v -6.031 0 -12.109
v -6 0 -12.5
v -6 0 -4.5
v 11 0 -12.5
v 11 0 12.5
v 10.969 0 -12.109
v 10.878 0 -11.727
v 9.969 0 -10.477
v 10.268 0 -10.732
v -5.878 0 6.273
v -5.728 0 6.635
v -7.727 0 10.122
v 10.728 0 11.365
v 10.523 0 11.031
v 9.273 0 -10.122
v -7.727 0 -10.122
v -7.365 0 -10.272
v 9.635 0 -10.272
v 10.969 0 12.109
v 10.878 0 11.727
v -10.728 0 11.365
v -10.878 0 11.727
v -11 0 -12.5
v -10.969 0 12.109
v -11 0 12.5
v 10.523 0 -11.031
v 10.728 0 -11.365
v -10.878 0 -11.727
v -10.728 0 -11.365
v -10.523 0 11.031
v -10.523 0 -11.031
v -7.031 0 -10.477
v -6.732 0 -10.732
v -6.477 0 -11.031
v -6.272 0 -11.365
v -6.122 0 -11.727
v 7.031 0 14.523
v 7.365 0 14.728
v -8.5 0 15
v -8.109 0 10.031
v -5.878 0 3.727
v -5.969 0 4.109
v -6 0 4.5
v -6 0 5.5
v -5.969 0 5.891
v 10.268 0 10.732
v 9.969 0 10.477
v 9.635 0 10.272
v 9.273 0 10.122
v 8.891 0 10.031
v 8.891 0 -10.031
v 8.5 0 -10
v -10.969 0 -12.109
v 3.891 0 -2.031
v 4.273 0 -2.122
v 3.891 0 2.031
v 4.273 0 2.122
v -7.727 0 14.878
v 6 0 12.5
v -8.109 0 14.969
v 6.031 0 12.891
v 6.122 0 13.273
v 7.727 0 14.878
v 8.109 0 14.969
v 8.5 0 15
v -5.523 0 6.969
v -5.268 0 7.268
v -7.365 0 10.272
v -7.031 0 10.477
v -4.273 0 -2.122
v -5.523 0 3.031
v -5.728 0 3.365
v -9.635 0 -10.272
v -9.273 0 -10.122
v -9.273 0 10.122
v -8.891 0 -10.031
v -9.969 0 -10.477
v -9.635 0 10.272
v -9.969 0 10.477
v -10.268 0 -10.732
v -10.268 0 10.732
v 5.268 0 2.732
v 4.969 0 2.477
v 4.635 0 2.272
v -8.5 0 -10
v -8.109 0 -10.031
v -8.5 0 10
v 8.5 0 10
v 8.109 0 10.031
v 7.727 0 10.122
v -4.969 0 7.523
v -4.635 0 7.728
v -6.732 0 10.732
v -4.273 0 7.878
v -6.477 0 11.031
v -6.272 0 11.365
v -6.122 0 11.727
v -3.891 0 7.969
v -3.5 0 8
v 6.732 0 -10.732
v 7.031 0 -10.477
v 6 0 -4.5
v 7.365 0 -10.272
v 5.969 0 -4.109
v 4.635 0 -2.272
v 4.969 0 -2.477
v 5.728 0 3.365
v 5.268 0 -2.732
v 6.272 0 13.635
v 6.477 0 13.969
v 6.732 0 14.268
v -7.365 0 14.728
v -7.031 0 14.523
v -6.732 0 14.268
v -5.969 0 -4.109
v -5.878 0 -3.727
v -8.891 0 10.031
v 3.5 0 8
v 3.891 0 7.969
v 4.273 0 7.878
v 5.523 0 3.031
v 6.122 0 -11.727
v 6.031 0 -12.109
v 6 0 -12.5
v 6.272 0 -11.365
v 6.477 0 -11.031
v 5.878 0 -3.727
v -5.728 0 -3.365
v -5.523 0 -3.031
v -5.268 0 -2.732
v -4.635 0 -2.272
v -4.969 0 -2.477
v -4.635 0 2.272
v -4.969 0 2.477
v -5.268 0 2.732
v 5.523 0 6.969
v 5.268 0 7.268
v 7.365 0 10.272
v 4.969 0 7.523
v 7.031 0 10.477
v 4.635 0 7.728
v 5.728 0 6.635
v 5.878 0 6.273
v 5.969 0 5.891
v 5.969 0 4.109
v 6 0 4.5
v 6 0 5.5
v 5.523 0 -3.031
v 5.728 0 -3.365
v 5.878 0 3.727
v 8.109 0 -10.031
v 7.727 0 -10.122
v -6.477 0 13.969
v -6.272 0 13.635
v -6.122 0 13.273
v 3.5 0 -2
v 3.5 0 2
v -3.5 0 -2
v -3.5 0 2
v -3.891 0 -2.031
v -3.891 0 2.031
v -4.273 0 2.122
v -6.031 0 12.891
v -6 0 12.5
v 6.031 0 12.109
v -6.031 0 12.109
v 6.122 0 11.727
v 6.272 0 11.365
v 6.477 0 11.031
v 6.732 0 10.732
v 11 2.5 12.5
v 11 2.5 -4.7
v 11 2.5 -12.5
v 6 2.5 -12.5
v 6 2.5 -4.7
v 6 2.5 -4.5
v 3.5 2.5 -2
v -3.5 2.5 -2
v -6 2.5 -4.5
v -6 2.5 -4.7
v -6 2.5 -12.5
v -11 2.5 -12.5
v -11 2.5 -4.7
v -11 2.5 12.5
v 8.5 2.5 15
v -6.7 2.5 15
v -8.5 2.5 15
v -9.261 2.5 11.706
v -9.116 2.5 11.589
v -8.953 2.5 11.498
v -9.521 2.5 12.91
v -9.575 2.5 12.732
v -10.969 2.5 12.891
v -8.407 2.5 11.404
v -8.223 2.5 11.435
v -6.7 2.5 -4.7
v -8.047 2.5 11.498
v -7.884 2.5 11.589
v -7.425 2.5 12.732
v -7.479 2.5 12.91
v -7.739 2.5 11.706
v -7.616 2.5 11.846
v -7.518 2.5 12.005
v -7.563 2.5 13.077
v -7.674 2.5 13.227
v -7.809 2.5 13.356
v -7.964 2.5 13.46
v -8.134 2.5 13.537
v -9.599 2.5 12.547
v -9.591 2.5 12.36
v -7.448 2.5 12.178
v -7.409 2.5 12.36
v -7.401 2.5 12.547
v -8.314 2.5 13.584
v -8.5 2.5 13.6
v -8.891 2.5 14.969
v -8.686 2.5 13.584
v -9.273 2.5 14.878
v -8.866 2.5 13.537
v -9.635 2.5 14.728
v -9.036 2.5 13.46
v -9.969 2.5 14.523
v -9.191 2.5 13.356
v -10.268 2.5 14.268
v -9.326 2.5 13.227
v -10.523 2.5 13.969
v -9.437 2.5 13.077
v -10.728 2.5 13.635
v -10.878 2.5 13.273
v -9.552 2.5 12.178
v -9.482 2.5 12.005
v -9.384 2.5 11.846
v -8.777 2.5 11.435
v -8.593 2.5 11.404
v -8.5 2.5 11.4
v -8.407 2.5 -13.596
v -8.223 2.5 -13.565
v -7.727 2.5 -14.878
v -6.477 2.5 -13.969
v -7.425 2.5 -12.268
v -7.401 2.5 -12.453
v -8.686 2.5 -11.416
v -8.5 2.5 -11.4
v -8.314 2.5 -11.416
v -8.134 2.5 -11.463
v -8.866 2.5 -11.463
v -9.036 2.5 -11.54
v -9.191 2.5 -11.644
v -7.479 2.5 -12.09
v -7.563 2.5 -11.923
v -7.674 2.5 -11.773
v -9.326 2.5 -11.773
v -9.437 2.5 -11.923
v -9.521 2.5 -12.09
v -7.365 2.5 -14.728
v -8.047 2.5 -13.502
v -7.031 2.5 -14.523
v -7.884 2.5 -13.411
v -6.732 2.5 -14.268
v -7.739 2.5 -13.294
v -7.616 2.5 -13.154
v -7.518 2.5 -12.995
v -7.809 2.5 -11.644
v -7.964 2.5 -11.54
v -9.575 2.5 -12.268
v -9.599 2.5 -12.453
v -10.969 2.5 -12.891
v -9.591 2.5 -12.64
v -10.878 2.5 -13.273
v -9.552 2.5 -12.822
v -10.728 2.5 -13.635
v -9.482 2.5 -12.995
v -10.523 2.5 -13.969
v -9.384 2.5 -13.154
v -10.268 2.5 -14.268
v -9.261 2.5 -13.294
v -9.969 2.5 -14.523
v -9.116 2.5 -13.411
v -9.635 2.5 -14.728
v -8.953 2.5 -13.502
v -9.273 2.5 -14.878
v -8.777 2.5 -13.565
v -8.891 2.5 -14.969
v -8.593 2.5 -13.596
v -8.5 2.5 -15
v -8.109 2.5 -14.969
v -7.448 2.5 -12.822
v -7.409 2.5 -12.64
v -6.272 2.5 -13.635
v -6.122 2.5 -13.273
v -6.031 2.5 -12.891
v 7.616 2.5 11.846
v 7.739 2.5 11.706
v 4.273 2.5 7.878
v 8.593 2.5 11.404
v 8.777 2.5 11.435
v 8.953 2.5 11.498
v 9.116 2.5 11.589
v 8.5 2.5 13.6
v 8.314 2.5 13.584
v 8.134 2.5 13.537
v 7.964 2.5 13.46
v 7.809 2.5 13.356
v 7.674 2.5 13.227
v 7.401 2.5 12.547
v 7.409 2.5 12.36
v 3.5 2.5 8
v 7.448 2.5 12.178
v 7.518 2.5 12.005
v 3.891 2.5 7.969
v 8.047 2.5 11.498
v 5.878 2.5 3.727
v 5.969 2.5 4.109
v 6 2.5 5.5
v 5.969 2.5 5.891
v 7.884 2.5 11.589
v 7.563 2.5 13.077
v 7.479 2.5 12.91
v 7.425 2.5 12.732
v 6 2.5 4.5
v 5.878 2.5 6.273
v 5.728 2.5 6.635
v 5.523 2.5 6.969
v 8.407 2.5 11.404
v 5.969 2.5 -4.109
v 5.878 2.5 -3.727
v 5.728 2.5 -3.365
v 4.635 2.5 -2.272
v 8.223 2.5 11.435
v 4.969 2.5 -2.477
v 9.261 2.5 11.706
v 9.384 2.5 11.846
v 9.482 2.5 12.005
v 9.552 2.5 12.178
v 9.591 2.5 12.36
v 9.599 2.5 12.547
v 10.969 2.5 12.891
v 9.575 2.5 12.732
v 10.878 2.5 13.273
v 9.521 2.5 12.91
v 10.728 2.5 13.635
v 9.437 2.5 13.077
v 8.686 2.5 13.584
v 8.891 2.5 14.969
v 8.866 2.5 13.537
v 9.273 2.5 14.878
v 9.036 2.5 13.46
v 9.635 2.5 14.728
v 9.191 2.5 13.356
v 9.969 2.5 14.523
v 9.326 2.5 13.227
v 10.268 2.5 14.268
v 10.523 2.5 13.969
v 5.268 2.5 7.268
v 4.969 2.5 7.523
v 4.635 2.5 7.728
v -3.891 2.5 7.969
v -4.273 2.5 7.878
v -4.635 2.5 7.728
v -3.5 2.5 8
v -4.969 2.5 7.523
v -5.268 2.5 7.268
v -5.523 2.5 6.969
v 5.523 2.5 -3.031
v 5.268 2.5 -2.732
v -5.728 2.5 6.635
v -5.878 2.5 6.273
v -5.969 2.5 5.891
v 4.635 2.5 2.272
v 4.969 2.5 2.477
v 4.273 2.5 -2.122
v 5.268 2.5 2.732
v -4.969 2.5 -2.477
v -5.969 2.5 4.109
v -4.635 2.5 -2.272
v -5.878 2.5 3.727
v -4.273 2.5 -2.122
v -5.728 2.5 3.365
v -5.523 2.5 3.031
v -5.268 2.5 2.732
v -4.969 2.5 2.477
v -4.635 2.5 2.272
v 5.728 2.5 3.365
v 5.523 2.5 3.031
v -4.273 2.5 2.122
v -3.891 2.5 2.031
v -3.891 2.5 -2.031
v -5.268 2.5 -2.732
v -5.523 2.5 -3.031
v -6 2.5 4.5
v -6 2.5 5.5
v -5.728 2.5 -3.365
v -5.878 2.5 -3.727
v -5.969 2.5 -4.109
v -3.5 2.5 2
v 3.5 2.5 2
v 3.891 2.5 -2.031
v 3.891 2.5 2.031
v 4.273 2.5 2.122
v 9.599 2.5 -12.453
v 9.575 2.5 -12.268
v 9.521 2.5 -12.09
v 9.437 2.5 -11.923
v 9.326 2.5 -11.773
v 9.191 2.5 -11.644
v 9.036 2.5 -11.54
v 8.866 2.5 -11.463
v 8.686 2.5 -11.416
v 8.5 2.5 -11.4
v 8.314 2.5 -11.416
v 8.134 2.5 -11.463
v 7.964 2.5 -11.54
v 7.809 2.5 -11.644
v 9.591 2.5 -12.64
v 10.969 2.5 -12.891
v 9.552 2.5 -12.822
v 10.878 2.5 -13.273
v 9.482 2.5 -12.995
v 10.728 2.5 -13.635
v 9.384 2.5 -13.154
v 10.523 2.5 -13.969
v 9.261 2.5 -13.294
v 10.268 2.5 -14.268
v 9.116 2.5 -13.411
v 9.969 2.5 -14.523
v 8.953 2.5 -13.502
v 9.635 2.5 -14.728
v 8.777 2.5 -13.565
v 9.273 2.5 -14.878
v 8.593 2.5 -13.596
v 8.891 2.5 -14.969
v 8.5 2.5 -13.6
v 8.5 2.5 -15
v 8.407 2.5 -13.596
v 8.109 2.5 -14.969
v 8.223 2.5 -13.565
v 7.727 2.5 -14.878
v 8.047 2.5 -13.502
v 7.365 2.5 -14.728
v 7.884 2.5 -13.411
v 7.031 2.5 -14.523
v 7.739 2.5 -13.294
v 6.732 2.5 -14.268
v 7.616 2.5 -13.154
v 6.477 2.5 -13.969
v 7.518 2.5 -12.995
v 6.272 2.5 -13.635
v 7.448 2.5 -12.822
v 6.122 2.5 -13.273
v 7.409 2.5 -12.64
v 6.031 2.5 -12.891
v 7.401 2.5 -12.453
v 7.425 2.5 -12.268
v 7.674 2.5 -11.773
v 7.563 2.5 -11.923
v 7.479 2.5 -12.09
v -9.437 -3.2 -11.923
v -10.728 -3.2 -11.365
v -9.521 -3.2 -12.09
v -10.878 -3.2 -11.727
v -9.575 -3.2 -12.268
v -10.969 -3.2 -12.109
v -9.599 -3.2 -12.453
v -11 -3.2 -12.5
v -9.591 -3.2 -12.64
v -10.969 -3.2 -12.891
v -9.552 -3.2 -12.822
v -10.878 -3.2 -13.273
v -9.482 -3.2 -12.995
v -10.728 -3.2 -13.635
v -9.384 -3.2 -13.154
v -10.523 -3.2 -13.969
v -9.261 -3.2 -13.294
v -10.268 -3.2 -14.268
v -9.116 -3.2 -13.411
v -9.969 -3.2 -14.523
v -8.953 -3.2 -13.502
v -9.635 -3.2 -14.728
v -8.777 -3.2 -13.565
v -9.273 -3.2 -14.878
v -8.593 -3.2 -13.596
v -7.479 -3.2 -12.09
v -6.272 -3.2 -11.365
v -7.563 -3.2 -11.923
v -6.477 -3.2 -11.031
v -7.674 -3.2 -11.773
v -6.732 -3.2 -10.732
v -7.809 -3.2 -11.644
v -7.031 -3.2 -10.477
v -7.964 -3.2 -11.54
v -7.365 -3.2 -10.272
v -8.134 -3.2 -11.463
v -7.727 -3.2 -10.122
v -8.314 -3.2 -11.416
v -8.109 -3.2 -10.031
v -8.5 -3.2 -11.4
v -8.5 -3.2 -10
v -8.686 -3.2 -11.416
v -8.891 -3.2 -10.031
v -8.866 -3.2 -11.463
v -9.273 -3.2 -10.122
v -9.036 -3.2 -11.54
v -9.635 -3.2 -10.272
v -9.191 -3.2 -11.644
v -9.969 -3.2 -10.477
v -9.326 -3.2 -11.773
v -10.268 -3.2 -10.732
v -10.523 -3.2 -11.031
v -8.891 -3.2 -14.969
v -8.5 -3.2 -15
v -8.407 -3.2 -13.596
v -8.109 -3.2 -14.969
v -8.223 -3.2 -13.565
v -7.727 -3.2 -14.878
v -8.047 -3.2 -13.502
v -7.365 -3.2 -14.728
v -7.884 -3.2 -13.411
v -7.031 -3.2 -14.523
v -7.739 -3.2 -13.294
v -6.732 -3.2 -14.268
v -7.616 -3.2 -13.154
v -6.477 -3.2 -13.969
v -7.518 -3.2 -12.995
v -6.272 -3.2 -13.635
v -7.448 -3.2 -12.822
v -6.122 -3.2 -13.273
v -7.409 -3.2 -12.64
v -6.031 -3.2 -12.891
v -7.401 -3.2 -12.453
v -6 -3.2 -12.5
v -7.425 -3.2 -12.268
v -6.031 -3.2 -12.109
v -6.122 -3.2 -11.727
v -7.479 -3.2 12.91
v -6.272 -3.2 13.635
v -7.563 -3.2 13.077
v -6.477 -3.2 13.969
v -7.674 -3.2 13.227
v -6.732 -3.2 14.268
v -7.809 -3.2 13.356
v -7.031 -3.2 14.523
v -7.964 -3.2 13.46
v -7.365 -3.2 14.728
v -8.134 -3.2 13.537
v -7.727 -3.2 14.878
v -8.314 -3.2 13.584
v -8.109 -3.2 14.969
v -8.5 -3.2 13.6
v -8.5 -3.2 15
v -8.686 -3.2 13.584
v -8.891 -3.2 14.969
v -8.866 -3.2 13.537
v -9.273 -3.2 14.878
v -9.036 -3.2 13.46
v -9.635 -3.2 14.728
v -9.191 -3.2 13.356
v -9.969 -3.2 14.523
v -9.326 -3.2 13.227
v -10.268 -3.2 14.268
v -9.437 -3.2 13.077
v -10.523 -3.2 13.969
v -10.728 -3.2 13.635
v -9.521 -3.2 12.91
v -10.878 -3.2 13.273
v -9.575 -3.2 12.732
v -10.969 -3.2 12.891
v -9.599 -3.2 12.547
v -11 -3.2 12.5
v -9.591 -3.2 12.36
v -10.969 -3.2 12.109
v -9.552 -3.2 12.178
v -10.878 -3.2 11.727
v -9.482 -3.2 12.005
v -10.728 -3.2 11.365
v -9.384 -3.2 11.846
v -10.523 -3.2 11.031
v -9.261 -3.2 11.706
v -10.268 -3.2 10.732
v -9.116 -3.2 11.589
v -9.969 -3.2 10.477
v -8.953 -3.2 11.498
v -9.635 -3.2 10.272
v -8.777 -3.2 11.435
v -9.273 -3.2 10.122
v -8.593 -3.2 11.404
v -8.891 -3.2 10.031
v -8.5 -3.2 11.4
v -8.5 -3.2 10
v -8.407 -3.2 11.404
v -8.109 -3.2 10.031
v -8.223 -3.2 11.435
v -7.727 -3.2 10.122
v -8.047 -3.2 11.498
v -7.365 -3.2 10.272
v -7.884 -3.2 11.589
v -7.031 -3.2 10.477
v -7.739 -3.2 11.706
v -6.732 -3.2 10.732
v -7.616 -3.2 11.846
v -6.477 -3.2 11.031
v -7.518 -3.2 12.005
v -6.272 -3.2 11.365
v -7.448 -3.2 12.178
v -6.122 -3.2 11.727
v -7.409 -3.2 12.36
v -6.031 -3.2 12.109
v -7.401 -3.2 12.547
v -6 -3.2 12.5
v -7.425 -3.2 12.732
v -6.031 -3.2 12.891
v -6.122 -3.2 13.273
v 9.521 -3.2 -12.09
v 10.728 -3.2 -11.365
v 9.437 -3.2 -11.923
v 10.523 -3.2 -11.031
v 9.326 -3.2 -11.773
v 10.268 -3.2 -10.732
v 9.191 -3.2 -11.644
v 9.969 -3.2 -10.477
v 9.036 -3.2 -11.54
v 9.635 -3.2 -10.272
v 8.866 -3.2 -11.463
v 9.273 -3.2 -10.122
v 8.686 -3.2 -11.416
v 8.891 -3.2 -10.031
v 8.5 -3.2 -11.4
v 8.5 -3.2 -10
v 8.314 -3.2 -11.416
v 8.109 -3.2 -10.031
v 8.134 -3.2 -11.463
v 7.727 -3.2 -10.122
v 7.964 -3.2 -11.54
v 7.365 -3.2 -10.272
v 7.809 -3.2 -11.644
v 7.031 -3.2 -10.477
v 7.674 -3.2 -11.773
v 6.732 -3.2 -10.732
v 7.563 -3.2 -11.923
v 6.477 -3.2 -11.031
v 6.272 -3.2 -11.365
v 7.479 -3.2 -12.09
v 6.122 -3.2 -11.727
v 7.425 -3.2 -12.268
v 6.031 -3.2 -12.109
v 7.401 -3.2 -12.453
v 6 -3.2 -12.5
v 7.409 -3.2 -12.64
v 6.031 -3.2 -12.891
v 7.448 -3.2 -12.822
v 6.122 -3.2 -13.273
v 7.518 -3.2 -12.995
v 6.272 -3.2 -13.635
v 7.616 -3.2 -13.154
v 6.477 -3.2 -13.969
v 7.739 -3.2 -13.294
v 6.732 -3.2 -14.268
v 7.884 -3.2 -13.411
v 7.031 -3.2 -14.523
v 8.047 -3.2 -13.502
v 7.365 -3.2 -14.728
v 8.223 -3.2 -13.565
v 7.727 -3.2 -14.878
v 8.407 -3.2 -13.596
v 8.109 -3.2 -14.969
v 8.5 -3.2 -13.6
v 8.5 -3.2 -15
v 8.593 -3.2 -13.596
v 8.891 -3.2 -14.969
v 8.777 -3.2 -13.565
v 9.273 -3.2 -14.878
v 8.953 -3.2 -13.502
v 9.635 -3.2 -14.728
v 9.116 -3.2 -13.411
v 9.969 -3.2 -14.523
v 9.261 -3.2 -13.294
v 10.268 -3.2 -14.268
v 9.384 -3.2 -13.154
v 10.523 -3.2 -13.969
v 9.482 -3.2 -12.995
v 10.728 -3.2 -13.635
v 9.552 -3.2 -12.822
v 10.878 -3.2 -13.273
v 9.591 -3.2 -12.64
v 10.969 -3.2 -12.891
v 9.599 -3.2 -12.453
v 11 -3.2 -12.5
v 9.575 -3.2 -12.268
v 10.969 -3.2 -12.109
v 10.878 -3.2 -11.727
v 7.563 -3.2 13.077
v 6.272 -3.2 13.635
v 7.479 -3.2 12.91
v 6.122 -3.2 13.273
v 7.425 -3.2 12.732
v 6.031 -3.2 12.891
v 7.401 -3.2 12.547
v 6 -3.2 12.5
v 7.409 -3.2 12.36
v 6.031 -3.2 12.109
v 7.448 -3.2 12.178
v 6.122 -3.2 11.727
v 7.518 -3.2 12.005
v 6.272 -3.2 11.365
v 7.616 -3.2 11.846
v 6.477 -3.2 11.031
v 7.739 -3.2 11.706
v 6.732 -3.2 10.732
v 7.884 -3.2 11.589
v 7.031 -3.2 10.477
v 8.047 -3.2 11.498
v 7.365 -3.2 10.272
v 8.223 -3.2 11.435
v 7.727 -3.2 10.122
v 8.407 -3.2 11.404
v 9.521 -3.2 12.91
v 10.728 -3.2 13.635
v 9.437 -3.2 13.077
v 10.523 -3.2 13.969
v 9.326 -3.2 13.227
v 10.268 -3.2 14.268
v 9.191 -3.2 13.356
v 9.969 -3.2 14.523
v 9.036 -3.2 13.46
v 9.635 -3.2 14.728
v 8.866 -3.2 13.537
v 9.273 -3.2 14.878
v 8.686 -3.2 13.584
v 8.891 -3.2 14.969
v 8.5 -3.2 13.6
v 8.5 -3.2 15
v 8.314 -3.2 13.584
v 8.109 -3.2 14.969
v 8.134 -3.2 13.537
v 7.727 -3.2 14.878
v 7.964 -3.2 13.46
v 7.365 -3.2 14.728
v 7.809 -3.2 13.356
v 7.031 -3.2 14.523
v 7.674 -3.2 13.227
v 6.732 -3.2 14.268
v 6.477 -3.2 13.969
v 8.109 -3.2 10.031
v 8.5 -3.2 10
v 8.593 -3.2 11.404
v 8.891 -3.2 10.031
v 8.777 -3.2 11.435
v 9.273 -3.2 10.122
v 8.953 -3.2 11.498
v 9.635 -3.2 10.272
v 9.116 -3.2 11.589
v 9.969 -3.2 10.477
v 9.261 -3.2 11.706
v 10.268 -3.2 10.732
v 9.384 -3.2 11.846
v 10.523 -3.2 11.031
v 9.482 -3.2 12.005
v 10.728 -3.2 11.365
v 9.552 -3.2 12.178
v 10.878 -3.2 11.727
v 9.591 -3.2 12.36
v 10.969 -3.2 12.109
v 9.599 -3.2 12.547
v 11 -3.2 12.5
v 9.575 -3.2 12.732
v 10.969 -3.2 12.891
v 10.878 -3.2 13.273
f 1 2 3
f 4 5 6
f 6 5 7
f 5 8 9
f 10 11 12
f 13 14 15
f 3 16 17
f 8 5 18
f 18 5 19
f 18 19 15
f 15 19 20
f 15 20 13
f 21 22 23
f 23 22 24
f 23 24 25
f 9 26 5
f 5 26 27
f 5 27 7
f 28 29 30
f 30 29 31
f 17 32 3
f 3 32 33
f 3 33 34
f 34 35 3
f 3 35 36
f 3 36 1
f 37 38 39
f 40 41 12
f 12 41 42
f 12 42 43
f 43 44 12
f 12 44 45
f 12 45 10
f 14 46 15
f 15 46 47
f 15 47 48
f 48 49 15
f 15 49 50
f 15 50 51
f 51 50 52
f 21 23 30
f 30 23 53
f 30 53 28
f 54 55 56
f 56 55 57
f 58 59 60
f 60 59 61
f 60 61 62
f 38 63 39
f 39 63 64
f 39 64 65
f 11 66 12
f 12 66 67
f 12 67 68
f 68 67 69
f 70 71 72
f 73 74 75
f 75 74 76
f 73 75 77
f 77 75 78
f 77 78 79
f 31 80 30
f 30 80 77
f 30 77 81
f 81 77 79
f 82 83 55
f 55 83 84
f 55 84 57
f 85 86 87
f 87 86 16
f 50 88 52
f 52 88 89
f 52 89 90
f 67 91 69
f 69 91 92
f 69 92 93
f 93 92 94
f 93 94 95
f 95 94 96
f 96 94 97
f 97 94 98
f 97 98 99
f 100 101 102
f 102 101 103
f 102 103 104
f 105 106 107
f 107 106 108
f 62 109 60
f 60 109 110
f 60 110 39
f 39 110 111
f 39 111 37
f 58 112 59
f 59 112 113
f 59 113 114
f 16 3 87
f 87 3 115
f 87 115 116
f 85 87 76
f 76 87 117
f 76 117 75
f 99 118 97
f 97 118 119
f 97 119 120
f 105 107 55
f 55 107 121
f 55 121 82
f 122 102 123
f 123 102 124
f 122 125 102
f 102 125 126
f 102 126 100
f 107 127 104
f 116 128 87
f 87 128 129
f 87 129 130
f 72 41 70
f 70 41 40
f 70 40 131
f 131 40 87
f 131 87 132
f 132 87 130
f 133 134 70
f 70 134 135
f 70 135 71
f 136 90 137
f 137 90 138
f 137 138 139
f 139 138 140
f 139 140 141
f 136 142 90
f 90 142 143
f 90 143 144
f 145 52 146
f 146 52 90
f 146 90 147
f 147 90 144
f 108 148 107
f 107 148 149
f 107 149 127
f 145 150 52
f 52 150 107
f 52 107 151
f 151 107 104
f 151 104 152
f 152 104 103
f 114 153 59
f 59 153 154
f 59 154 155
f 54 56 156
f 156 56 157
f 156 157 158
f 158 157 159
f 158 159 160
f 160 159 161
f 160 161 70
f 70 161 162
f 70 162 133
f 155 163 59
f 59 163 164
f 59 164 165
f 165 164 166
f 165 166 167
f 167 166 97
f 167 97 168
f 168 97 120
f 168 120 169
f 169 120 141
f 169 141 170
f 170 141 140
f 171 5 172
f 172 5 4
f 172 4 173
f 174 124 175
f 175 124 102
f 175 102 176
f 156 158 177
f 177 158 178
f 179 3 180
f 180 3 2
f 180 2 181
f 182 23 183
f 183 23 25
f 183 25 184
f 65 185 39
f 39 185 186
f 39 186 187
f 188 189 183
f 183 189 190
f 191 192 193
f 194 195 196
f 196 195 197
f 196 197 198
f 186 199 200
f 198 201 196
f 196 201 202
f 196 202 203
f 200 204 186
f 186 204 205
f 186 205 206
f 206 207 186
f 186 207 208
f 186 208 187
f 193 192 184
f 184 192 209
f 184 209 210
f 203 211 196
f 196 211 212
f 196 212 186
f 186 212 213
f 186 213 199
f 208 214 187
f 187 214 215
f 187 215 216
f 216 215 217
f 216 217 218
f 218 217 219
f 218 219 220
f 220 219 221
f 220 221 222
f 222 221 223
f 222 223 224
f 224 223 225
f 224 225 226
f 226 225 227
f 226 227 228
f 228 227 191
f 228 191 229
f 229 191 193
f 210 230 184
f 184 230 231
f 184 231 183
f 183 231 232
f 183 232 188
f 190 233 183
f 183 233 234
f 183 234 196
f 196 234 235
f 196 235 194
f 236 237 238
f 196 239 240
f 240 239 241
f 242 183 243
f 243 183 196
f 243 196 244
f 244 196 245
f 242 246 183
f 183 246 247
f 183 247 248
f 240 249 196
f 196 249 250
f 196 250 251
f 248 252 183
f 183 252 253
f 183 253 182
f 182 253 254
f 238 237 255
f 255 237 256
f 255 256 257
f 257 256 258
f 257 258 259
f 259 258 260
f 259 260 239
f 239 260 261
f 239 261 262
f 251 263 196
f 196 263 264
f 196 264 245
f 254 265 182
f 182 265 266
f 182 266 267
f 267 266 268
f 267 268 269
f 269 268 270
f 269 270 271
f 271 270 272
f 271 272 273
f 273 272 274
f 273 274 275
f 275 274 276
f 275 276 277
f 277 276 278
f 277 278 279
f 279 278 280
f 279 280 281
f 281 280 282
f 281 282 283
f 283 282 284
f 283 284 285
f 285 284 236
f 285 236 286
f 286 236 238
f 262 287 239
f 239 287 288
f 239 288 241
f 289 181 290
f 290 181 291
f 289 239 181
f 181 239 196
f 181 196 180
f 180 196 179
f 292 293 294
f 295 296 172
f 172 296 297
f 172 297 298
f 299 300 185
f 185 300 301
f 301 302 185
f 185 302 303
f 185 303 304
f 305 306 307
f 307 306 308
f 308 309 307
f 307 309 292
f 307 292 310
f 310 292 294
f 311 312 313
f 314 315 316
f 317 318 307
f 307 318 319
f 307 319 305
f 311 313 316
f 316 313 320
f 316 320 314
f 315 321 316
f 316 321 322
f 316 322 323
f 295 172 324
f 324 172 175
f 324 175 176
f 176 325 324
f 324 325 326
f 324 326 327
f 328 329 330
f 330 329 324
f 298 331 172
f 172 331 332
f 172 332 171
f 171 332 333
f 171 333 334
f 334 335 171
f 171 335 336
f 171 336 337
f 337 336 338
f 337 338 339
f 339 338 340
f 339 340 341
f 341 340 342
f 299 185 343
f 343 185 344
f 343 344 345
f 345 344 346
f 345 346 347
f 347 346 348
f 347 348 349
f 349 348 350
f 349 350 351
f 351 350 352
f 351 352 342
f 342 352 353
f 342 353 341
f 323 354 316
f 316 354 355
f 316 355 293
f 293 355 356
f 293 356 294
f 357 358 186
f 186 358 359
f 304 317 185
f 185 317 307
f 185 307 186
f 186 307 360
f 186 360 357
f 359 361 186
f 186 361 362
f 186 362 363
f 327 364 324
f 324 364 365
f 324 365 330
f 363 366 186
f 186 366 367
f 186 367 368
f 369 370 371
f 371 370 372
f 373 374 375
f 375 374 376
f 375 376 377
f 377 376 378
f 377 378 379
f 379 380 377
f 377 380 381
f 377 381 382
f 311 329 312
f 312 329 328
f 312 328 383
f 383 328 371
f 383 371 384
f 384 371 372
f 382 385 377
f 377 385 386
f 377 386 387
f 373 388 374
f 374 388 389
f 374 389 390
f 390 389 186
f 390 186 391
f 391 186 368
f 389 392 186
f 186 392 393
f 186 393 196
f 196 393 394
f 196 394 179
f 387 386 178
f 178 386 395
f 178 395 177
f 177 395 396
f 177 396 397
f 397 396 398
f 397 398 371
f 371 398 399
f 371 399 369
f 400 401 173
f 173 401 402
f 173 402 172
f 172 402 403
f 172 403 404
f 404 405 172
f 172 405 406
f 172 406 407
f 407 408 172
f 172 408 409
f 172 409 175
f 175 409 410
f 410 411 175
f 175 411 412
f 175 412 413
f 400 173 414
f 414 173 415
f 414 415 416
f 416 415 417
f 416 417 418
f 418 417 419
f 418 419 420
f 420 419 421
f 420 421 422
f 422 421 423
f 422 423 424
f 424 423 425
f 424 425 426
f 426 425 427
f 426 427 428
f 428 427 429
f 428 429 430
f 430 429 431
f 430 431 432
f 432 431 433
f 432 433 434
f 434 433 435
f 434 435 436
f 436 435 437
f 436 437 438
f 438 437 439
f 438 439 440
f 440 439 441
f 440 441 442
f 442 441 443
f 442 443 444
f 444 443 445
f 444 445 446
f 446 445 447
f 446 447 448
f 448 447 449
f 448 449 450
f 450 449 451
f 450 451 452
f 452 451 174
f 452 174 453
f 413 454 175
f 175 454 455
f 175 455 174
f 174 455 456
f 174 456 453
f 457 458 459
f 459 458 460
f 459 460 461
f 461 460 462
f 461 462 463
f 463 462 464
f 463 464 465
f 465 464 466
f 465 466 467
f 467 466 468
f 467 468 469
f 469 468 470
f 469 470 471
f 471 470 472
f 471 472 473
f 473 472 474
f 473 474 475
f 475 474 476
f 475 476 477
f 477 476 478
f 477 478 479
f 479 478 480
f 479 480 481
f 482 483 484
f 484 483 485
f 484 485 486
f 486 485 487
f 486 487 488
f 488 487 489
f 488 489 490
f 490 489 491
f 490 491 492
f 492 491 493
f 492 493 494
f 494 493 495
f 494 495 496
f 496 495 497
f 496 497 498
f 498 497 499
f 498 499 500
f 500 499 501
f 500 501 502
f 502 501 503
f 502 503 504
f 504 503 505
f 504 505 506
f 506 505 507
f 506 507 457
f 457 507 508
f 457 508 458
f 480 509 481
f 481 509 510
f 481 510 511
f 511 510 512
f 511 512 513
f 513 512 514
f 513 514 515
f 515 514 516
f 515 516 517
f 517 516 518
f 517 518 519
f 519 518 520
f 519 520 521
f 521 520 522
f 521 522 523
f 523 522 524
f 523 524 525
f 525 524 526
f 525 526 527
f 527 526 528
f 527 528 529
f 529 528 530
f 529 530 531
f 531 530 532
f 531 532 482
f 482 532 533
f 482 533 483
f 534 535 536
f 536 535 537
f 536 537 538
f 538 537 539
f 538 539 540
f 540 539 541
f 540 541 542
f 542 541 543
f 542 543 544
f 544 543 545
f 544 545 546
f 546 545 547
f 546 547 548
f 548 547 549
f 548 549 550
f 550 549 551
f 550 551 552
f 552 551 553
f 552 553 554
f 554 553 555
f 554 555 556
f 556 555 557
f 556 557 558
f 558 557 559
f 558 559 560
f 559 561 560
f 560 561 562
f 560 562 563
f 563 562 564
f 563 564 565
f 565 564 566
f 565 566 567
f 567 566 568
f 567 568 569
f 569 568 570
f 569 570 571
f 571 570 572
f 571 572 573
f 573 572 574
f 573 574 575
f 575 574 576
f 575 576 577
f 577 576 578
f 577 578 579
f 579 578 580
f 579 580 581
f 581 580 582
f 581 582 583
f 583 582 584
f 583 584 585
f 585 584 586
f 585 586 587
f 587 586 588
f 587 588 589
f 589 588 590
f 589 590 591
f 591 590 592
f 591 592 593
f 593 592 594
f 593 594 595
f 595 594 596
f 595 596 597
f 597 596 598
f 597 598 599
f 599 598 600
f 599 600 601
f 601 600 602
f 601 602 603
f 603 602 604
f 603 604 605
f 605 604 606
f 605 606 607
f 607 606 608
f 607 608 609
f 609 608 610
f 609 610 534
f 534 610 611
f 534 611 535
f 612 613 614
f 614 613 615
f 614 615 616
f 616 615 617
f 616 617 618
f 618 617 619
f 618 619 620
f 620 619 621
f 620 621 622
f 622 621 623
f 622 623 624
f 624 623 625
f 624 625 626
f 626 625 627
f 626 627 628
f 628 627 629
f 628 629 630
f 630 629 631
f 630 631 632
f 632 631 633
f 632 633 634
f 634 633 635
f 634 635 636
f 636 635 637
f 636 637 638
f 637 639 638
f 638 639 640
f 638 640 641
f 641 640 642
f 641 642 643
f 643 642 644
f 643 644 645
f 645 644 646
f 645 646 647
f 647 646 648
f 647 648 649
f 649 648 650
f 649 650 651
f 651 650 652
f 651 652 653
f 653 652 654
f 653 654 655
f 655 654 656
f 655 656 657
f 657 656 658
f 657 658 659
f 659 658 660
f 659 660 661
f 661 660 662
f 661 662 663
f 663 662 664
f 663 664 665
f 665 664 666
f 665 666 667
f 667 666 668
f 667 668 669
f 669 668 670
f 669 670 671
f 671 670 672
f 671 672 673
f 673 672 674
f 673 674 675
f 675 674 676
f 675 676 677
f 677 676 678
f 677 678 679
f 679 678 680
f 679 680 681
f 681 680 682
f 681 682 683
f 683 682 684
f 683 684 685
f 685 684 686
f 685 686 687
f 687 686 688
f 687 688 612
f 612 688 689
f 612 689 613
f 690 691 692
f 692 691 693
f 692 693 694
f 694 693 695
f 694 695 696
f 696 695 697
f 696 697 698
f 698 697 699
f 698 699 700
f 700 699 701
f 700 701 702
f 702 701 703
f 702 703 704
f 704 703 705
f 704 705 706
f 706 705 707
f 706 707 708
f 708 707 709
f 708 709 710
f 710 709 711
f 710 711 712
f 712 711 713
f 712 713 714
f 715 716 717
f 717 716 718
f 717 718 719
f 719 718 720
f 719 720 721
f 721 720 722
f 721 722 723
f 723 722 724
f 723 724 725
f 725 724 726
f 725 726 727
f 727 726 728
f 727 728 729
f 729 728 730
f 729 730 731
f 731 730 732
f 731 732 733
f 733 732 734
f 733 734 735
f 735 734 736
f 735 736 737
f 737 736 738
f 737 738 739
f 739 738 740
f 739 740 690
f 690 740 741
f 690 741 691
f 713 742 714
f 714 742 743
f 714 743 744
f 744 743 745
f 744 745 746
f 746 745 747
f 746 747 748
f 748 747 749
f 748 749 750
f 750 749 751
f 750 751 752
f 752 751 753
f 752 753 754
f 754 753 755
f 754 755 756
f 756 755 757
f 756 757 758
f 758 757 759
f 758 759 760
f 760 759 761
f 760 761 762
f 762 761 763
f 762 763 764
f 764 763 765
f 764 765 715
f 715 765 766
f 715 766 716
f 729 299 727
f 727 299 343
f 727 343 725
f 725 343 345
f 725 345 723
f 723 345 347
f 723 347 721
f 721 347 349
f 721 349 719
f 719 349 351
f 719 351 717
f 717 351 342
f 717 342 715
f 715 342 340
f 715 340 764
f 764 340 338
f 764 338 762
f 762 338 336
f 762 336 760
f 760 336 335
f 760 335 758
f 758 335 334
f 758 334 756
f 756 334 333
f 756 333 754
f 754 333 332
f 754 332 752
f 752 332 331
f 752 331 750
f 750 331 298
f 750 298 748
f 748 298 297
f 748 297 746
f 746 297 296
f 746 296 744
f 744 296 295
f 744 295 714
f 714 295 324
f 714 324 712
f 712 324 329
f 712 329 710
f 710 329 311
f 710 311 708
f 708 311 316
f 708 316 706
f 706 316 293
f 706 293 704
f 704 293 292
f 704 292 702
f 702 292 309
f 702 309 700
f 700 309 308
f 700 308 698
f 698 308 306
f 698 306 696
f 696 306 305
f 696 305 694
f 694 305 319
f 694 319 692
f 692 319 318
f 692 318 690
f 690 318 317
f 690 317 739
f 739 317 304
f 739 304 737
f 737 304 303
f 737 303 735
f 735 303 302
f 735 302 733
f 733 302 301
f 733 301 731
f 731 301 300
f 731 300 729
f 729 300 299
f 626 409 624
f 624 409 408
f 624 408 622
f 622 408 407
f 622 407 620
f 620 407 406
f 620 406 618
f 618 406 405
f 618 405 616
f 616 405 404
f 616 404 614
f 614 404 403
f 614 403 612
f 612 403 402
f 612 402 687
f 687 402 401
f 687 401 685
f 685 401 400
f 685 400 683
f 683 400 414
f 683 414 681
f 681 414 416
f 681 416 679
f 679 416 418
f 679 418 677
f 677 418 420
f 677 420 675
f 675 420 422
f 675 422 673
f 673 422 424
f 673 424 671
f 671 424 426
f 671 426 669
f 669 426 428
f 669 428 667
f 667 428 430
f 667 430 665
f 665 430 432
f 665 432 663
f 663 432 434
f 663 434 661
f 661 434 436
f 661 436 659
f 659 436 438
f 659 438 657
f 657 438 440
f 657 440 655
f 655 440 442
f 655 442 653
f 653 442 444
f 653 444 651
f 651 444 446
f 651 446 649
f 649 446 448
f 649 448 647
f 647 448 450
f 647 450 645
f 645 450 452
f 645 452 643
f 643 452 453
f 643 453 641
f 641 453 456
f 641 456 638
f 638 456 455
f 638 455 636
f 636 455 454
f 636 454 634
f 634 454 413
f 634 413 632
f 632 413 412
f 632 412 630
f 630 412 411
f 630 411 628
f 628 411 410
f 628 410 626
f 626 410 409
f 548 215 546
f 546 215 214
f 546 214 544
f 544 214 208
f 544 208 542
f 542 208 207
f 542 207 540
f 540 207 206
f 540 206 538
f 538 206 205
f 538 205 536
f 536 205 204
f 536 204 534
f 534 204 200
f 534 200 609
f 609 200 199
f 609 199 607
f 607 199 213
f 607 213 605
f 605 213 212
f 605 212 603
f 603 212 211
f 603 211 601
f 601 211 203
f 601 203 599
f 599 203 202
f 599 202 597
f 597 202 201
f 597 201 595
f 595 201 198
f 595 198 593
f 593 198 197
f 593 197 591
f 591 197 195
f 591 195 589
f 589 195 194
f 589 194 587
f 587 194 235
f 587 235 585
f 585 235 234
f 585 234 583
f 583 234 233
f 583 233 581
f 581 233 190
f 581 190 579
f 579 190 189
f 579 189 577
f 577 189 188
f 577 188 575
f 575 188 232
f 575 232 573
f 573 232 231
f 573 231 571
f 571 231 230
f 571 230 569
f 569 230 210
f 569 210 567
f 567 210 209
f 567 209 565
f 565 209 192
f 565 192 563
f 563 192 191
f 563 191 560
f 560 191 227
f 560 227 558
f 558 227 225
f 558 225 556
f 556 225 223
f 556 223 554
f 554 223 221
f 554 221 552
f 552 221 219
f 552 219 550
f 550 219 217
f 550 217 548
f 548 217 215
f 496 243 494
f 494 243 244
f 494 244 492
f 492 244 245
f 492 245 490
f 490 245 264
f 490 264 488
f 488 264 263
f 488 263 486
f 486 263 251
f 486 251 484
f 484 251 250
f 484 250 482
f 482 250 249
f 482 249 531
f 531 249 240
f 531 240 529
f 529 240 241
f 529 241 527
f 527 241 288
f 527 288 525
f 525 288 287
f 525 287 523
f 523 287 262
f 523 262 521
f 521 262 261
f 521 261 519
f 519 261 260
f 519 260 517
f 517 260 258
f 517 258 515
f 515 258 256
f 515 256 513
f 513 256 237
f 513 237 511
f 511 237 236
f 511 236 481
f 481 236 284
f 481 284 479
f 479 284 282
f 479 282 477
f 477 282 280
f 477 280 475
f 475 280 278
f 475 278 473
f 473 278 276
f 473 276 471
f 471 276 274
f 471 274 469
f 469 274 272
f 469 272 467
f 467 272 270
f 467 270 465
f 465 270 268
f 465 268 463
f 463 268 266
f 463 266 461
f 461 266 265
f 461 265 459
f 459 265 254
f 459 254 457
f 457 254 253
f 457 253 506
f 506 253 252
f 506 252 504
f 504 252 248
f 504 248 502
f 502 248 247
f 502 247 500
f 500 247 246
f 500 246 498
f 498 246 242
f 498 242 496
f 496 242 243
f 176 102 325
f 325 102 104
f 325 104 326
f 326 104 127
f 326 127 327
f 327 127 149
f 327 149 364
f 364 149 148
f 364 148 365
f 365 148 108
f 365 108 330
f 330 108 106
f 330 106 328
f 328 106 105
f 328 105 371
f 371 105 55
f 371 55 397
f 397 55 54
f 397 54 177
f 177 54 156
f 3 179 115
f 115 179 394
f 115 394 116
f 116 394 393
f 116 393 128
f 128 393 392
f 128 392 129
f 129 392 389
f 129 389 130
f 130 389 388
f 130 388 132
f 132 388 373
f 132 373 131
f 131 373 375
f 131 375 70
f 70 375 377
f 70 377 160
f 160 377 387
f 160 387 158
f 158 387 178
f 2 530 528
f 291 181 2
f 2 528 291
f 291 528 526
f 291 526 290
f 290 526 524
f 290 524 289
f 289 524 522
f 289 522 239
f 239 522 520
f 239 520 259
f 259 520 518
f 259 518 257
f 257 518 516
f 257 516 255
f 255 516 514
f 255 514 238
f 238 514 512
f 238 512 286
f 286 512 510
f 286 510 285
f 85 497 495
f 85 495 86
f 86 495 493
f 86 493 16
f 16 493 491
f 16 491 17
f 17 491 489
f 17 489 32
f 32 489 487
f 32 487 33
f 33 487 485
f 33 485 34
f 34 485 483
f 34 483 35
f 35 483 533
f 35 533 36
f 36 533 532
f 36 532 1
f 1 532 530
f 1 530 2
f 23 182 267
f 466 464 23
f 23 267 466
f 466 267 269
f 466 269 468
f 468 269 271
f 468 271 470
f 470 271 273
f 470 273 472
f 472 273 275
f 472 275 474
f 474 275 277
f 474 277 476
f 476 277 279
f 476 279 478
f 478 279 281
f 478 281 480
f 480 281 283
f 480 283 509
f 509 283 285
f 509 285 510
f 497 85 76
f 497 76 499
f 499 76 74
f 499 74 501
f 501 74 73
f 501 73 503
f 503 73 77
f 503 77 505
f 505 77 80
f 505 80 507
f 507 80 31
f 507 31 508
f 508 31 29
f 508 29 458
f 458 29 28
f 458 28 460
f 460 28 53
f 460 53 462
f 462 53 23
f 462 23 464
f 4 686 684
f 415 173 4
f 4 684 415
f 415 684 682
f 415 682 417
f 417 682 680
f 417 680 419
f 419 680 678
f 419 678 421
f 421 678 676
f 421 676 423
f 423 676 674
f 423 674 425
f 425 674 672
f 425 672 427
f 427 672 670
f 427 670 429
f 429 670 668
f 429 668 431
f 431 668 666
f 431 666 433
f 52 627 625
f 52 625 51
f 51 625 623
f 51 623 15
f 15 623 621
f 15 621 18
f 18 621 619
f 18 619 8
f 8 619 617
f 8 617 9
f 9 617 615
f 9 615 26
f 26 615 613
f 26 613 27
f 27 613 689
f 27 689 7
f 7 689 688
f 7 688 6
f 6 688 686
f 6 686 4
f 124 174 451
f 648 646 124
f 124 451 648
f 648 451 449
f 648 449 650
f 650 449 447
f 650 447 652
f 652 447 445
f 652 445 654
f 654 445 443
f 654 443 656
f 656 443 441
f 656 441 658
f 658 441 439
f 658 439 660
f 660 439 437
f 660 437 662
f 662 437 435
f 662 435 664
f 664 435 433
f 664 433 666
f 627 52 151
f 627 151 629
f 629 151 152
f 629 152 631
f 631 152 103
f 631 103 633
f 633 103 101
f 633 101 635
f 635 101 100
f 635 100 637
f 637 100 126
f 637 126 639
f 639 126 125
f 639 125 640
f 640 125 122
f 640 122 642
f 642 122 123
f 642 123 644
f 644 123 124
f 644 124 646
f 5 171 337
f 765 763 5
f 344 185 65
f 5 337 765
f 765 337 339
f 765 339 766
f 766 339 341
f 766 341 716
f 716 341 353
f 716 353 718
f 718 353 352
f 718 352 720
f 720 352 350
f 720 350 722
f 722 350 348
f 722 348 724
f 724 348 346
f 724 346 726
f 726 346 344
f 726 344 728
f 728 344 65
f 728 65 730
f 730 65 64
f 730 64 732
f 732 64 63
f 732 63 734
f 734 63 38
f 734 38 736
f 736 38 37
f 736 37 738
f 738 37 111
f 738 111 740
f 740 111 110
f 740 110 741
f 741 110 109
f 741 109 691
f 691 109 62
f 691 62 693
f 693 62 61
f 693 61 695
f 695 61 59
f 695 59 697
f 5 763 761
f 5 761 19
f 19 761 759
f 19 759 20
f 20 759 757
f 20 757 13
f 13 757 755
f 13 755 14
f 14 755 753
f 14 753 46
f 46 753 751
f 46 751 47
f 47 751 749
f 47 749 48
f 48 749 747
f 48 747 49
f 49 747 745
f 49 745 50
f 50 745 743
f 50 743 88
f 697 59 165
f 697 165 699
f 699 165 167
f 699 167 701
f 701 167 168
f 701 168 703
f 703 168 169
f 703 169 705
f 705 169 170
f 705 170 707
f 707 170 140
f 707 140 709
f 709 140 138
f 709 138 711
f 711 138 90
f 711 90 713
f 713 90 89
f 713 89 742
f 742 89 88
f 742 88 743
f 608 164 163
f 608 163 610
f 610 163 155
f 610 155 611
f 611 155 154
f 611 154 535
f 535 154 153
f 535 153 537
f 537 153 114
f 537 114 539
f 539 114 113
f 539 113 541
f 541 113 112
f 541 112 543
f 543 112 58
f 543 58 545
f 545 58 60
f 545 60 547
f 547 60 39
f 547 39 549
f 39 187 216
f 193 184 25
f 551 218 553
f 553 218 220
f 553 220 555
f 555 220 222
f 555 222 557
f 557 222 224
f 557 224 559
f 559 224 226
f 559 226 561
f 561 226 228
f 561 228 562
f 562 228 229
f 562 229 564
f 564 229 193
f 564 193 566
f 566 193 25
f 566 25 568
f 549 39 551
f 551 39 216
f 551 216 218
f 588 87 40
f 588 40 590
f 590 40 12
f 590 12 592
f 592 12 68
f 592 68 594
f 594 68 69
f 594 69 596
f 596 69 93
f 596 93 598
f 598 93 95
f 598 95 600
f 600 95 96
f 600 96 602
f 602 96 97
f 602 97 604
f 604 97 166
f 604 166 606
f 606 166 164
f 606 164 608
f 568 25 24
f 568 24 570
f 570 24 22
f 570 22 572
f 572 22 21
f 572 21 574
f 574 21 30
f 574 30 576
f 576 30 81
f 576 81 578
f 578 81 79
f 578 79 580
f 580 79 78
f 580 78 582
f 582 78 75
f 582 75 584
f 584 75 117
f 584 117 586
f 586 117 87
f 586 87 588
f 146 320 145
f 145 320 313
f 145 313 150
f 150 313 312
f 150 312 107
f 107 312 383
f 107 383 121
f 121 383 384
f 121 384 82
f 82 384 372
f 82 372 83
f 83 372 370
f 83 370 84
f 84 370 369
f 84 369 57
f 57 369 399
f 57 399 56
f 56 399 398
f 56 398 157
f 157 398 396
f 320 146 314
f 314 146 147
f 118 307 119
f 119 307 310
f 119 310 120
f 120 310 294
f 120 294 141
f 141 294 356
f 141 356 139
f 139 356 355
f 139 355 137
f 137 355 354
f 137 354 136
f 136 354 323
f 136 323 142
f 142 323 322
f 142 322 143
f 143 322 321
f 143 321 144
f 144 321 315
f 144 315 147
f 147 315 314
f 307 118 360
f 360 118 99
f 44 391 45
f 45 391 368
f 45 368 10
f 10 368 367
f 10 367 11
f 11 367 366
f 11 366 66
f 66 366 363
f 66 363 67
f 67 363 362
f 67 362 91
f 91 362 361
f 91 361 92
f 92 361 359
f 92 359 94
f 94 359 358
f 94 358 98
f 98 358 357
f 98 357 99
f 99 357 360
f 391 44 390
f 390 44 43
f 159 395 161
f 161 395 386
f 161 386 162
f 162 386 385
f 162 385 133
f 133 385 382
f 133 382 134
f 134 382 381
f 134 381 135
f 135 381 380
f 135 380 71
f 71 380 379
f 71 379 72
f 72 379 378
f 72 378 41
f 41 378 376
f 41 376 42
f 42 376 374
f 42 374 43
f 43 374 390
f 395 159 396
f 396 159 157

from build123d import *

# Parameters (mm, degrees)
SKETCH1_W           = 12
SKETCH1_H           = 12
SKETCH1_W_2         = 5
SKETCH1_H_2         = 5
BOSS_EXTRUDE1_DEPTH = 2.5
SKETCH2_W           = 5
SKETCH2_H           = 5
BOSS_EXTRUDE2_DEPTH = 3.2
SKETCH3_R           = 1.1
CUT_EXTRUDE1_DEPTH  = 20.454819454
FILLET1_R           = 2.5
CUT_EXTRUDE2_DEPTH  = 20.454819454


with BuildPart() as part:
    # Sketch1 → Boss-Extrude1 (new body)
    with BuildSketch(Plane(origin=(0, 0, 0), x_dir=(1, 0, 0), z_dir=(0, 1, 0))):
        Polygon((-6, -10), (-6, 2), (-6, 10), (-11, 10), (-11, -10), align=None)
        with Locations((0, -4)):
            Rectangle(SKETCH1_W, SKETCH1_H)
        Polygon((6, 10), (6, 2), (6, -10), (11, -10), (11, 10), align=None)
        with Locations((8.5, 12.5)):
            Rectangle(SKETCH1_W_2, SKETCH1_H_2)
        with Locations((-8.5, 12.5)):
            Rectangle(SKETCH1_W_2, SKETCH1_H_2)
        Polygon((11, -10), (11, -15), (-11, -15), (-11, -10), (-6, -10), (6, -10), align=None)
    extrude(amount=BOSS_EXTRUDE1_DEPTH)

    # Sketch2 → Boss-Extrude2 (add)
    with BuildSketch(Plane.XZ):
        with Locations((-8.5, -12.5)):
            Rectangle(SKETCH2_W, SKETCH2_H)
        with Locations((-8.5, 12.5)):
            Rectangle(SKETCH2_W, SKETCH2_H)
        with Locations((8.5, -12.5)):
            Rectangle(SKETCH2_W, SKETCH2_H)
        with Locations((8.5, 12.5)):
            Rectangle(SKETCH2_W, SKETCH2_H)
    extrude(amount=BOSS_EXTRUDE2_DEPTH)

    # Sketch3 → Cut-Extrude1 (cut, through all)
    with BuildSketch(Plane(origin=(0, 2.5, 0), x_dir=(1, 0, 0), z_dir=(0, 1, 0))):
        with Locations(Location((-8.5, 12.5, 0), (0, 0, 270))):
            Circle(SKETCH3_R)
        with Locations(Location((-8.5, -12.5, 0), (0, 0, 90))):
            Circle(SKETCH3_R)
        with Locations(Location((8.5, -12.5, 0), (0, 0, 270))):
            Circle(SKETCH3_R)
        with Locations(Location((8.5, 12.5, 0), (0, 0, 90))):
            Circle(SKETCH3_R)
    extrude(amount=-CUT_EXTRUDE1_DEPTH, mode=Mode.SUBTRACT)

    # Fillet1
    fillet1_edges = [part.edges().sort_by_distance(p)[0] for p in [
        (-11, -1.6, -10),
        (6, -1.6, -10),
        (6, -1.6, 10),
        (11, -1.6, -10),
        (-6, -1.6, -10),
        (-11, -1.6, 10),
        (-6, -1.6, 10),
        (11, -1.6, 10),
        (11, -0.35, 15),
        (-6, -1.6, 15),
        (6, -1.6, 15),
        (-11, -0.35, 15),
        (-11, -0.35, -15),
        (-6, -0.35, -15),
        (11, -0.35, -15),
        (6, -0.35, -15),
        (6, 1.25, -2),
        (-6, 1.25, -2),
    ]]
    fillet(fillet1_edges, radius=FILLET1_R - 0.0001)  # a hair under: the kernel refuses the full size

    # Sketch4 → Cut-Extrude2 (cut, through all)
    with BuildSketch(Plane(origin=(0, 2.5, 0), x_dir=(1, 0, 0), z_dir=(0, 1, 0))):
        with BuildLine():
            Line((-3.5, -2), (3.5, -2))
            ThreePointArc((3.5, -2), (5.267766953, -2.732233047), (6, -4.5))
            Line((6, -4.5), (6, -5.5))
            ThreePointArc((6, -5.5), (5.267766953, -7.267766953), (3.5, -8))
            Line((3.5, -8), (-3.5, -8))
            ThreePointArc((-3.5, -8), (-5.267766953, -7.267766953), (-6, -5.5))
            Line((-6, -5.5), (-6, -4.5))
            ThreePointArc((-6, -4.5), (-5.267766953, -2.732233047), (-3.5, -2))
        make_face()
    extrude(amount=-CUT_EXTRUDE2_DEPTH, mode=Mode.SUBTRACT)


solid = part.part
